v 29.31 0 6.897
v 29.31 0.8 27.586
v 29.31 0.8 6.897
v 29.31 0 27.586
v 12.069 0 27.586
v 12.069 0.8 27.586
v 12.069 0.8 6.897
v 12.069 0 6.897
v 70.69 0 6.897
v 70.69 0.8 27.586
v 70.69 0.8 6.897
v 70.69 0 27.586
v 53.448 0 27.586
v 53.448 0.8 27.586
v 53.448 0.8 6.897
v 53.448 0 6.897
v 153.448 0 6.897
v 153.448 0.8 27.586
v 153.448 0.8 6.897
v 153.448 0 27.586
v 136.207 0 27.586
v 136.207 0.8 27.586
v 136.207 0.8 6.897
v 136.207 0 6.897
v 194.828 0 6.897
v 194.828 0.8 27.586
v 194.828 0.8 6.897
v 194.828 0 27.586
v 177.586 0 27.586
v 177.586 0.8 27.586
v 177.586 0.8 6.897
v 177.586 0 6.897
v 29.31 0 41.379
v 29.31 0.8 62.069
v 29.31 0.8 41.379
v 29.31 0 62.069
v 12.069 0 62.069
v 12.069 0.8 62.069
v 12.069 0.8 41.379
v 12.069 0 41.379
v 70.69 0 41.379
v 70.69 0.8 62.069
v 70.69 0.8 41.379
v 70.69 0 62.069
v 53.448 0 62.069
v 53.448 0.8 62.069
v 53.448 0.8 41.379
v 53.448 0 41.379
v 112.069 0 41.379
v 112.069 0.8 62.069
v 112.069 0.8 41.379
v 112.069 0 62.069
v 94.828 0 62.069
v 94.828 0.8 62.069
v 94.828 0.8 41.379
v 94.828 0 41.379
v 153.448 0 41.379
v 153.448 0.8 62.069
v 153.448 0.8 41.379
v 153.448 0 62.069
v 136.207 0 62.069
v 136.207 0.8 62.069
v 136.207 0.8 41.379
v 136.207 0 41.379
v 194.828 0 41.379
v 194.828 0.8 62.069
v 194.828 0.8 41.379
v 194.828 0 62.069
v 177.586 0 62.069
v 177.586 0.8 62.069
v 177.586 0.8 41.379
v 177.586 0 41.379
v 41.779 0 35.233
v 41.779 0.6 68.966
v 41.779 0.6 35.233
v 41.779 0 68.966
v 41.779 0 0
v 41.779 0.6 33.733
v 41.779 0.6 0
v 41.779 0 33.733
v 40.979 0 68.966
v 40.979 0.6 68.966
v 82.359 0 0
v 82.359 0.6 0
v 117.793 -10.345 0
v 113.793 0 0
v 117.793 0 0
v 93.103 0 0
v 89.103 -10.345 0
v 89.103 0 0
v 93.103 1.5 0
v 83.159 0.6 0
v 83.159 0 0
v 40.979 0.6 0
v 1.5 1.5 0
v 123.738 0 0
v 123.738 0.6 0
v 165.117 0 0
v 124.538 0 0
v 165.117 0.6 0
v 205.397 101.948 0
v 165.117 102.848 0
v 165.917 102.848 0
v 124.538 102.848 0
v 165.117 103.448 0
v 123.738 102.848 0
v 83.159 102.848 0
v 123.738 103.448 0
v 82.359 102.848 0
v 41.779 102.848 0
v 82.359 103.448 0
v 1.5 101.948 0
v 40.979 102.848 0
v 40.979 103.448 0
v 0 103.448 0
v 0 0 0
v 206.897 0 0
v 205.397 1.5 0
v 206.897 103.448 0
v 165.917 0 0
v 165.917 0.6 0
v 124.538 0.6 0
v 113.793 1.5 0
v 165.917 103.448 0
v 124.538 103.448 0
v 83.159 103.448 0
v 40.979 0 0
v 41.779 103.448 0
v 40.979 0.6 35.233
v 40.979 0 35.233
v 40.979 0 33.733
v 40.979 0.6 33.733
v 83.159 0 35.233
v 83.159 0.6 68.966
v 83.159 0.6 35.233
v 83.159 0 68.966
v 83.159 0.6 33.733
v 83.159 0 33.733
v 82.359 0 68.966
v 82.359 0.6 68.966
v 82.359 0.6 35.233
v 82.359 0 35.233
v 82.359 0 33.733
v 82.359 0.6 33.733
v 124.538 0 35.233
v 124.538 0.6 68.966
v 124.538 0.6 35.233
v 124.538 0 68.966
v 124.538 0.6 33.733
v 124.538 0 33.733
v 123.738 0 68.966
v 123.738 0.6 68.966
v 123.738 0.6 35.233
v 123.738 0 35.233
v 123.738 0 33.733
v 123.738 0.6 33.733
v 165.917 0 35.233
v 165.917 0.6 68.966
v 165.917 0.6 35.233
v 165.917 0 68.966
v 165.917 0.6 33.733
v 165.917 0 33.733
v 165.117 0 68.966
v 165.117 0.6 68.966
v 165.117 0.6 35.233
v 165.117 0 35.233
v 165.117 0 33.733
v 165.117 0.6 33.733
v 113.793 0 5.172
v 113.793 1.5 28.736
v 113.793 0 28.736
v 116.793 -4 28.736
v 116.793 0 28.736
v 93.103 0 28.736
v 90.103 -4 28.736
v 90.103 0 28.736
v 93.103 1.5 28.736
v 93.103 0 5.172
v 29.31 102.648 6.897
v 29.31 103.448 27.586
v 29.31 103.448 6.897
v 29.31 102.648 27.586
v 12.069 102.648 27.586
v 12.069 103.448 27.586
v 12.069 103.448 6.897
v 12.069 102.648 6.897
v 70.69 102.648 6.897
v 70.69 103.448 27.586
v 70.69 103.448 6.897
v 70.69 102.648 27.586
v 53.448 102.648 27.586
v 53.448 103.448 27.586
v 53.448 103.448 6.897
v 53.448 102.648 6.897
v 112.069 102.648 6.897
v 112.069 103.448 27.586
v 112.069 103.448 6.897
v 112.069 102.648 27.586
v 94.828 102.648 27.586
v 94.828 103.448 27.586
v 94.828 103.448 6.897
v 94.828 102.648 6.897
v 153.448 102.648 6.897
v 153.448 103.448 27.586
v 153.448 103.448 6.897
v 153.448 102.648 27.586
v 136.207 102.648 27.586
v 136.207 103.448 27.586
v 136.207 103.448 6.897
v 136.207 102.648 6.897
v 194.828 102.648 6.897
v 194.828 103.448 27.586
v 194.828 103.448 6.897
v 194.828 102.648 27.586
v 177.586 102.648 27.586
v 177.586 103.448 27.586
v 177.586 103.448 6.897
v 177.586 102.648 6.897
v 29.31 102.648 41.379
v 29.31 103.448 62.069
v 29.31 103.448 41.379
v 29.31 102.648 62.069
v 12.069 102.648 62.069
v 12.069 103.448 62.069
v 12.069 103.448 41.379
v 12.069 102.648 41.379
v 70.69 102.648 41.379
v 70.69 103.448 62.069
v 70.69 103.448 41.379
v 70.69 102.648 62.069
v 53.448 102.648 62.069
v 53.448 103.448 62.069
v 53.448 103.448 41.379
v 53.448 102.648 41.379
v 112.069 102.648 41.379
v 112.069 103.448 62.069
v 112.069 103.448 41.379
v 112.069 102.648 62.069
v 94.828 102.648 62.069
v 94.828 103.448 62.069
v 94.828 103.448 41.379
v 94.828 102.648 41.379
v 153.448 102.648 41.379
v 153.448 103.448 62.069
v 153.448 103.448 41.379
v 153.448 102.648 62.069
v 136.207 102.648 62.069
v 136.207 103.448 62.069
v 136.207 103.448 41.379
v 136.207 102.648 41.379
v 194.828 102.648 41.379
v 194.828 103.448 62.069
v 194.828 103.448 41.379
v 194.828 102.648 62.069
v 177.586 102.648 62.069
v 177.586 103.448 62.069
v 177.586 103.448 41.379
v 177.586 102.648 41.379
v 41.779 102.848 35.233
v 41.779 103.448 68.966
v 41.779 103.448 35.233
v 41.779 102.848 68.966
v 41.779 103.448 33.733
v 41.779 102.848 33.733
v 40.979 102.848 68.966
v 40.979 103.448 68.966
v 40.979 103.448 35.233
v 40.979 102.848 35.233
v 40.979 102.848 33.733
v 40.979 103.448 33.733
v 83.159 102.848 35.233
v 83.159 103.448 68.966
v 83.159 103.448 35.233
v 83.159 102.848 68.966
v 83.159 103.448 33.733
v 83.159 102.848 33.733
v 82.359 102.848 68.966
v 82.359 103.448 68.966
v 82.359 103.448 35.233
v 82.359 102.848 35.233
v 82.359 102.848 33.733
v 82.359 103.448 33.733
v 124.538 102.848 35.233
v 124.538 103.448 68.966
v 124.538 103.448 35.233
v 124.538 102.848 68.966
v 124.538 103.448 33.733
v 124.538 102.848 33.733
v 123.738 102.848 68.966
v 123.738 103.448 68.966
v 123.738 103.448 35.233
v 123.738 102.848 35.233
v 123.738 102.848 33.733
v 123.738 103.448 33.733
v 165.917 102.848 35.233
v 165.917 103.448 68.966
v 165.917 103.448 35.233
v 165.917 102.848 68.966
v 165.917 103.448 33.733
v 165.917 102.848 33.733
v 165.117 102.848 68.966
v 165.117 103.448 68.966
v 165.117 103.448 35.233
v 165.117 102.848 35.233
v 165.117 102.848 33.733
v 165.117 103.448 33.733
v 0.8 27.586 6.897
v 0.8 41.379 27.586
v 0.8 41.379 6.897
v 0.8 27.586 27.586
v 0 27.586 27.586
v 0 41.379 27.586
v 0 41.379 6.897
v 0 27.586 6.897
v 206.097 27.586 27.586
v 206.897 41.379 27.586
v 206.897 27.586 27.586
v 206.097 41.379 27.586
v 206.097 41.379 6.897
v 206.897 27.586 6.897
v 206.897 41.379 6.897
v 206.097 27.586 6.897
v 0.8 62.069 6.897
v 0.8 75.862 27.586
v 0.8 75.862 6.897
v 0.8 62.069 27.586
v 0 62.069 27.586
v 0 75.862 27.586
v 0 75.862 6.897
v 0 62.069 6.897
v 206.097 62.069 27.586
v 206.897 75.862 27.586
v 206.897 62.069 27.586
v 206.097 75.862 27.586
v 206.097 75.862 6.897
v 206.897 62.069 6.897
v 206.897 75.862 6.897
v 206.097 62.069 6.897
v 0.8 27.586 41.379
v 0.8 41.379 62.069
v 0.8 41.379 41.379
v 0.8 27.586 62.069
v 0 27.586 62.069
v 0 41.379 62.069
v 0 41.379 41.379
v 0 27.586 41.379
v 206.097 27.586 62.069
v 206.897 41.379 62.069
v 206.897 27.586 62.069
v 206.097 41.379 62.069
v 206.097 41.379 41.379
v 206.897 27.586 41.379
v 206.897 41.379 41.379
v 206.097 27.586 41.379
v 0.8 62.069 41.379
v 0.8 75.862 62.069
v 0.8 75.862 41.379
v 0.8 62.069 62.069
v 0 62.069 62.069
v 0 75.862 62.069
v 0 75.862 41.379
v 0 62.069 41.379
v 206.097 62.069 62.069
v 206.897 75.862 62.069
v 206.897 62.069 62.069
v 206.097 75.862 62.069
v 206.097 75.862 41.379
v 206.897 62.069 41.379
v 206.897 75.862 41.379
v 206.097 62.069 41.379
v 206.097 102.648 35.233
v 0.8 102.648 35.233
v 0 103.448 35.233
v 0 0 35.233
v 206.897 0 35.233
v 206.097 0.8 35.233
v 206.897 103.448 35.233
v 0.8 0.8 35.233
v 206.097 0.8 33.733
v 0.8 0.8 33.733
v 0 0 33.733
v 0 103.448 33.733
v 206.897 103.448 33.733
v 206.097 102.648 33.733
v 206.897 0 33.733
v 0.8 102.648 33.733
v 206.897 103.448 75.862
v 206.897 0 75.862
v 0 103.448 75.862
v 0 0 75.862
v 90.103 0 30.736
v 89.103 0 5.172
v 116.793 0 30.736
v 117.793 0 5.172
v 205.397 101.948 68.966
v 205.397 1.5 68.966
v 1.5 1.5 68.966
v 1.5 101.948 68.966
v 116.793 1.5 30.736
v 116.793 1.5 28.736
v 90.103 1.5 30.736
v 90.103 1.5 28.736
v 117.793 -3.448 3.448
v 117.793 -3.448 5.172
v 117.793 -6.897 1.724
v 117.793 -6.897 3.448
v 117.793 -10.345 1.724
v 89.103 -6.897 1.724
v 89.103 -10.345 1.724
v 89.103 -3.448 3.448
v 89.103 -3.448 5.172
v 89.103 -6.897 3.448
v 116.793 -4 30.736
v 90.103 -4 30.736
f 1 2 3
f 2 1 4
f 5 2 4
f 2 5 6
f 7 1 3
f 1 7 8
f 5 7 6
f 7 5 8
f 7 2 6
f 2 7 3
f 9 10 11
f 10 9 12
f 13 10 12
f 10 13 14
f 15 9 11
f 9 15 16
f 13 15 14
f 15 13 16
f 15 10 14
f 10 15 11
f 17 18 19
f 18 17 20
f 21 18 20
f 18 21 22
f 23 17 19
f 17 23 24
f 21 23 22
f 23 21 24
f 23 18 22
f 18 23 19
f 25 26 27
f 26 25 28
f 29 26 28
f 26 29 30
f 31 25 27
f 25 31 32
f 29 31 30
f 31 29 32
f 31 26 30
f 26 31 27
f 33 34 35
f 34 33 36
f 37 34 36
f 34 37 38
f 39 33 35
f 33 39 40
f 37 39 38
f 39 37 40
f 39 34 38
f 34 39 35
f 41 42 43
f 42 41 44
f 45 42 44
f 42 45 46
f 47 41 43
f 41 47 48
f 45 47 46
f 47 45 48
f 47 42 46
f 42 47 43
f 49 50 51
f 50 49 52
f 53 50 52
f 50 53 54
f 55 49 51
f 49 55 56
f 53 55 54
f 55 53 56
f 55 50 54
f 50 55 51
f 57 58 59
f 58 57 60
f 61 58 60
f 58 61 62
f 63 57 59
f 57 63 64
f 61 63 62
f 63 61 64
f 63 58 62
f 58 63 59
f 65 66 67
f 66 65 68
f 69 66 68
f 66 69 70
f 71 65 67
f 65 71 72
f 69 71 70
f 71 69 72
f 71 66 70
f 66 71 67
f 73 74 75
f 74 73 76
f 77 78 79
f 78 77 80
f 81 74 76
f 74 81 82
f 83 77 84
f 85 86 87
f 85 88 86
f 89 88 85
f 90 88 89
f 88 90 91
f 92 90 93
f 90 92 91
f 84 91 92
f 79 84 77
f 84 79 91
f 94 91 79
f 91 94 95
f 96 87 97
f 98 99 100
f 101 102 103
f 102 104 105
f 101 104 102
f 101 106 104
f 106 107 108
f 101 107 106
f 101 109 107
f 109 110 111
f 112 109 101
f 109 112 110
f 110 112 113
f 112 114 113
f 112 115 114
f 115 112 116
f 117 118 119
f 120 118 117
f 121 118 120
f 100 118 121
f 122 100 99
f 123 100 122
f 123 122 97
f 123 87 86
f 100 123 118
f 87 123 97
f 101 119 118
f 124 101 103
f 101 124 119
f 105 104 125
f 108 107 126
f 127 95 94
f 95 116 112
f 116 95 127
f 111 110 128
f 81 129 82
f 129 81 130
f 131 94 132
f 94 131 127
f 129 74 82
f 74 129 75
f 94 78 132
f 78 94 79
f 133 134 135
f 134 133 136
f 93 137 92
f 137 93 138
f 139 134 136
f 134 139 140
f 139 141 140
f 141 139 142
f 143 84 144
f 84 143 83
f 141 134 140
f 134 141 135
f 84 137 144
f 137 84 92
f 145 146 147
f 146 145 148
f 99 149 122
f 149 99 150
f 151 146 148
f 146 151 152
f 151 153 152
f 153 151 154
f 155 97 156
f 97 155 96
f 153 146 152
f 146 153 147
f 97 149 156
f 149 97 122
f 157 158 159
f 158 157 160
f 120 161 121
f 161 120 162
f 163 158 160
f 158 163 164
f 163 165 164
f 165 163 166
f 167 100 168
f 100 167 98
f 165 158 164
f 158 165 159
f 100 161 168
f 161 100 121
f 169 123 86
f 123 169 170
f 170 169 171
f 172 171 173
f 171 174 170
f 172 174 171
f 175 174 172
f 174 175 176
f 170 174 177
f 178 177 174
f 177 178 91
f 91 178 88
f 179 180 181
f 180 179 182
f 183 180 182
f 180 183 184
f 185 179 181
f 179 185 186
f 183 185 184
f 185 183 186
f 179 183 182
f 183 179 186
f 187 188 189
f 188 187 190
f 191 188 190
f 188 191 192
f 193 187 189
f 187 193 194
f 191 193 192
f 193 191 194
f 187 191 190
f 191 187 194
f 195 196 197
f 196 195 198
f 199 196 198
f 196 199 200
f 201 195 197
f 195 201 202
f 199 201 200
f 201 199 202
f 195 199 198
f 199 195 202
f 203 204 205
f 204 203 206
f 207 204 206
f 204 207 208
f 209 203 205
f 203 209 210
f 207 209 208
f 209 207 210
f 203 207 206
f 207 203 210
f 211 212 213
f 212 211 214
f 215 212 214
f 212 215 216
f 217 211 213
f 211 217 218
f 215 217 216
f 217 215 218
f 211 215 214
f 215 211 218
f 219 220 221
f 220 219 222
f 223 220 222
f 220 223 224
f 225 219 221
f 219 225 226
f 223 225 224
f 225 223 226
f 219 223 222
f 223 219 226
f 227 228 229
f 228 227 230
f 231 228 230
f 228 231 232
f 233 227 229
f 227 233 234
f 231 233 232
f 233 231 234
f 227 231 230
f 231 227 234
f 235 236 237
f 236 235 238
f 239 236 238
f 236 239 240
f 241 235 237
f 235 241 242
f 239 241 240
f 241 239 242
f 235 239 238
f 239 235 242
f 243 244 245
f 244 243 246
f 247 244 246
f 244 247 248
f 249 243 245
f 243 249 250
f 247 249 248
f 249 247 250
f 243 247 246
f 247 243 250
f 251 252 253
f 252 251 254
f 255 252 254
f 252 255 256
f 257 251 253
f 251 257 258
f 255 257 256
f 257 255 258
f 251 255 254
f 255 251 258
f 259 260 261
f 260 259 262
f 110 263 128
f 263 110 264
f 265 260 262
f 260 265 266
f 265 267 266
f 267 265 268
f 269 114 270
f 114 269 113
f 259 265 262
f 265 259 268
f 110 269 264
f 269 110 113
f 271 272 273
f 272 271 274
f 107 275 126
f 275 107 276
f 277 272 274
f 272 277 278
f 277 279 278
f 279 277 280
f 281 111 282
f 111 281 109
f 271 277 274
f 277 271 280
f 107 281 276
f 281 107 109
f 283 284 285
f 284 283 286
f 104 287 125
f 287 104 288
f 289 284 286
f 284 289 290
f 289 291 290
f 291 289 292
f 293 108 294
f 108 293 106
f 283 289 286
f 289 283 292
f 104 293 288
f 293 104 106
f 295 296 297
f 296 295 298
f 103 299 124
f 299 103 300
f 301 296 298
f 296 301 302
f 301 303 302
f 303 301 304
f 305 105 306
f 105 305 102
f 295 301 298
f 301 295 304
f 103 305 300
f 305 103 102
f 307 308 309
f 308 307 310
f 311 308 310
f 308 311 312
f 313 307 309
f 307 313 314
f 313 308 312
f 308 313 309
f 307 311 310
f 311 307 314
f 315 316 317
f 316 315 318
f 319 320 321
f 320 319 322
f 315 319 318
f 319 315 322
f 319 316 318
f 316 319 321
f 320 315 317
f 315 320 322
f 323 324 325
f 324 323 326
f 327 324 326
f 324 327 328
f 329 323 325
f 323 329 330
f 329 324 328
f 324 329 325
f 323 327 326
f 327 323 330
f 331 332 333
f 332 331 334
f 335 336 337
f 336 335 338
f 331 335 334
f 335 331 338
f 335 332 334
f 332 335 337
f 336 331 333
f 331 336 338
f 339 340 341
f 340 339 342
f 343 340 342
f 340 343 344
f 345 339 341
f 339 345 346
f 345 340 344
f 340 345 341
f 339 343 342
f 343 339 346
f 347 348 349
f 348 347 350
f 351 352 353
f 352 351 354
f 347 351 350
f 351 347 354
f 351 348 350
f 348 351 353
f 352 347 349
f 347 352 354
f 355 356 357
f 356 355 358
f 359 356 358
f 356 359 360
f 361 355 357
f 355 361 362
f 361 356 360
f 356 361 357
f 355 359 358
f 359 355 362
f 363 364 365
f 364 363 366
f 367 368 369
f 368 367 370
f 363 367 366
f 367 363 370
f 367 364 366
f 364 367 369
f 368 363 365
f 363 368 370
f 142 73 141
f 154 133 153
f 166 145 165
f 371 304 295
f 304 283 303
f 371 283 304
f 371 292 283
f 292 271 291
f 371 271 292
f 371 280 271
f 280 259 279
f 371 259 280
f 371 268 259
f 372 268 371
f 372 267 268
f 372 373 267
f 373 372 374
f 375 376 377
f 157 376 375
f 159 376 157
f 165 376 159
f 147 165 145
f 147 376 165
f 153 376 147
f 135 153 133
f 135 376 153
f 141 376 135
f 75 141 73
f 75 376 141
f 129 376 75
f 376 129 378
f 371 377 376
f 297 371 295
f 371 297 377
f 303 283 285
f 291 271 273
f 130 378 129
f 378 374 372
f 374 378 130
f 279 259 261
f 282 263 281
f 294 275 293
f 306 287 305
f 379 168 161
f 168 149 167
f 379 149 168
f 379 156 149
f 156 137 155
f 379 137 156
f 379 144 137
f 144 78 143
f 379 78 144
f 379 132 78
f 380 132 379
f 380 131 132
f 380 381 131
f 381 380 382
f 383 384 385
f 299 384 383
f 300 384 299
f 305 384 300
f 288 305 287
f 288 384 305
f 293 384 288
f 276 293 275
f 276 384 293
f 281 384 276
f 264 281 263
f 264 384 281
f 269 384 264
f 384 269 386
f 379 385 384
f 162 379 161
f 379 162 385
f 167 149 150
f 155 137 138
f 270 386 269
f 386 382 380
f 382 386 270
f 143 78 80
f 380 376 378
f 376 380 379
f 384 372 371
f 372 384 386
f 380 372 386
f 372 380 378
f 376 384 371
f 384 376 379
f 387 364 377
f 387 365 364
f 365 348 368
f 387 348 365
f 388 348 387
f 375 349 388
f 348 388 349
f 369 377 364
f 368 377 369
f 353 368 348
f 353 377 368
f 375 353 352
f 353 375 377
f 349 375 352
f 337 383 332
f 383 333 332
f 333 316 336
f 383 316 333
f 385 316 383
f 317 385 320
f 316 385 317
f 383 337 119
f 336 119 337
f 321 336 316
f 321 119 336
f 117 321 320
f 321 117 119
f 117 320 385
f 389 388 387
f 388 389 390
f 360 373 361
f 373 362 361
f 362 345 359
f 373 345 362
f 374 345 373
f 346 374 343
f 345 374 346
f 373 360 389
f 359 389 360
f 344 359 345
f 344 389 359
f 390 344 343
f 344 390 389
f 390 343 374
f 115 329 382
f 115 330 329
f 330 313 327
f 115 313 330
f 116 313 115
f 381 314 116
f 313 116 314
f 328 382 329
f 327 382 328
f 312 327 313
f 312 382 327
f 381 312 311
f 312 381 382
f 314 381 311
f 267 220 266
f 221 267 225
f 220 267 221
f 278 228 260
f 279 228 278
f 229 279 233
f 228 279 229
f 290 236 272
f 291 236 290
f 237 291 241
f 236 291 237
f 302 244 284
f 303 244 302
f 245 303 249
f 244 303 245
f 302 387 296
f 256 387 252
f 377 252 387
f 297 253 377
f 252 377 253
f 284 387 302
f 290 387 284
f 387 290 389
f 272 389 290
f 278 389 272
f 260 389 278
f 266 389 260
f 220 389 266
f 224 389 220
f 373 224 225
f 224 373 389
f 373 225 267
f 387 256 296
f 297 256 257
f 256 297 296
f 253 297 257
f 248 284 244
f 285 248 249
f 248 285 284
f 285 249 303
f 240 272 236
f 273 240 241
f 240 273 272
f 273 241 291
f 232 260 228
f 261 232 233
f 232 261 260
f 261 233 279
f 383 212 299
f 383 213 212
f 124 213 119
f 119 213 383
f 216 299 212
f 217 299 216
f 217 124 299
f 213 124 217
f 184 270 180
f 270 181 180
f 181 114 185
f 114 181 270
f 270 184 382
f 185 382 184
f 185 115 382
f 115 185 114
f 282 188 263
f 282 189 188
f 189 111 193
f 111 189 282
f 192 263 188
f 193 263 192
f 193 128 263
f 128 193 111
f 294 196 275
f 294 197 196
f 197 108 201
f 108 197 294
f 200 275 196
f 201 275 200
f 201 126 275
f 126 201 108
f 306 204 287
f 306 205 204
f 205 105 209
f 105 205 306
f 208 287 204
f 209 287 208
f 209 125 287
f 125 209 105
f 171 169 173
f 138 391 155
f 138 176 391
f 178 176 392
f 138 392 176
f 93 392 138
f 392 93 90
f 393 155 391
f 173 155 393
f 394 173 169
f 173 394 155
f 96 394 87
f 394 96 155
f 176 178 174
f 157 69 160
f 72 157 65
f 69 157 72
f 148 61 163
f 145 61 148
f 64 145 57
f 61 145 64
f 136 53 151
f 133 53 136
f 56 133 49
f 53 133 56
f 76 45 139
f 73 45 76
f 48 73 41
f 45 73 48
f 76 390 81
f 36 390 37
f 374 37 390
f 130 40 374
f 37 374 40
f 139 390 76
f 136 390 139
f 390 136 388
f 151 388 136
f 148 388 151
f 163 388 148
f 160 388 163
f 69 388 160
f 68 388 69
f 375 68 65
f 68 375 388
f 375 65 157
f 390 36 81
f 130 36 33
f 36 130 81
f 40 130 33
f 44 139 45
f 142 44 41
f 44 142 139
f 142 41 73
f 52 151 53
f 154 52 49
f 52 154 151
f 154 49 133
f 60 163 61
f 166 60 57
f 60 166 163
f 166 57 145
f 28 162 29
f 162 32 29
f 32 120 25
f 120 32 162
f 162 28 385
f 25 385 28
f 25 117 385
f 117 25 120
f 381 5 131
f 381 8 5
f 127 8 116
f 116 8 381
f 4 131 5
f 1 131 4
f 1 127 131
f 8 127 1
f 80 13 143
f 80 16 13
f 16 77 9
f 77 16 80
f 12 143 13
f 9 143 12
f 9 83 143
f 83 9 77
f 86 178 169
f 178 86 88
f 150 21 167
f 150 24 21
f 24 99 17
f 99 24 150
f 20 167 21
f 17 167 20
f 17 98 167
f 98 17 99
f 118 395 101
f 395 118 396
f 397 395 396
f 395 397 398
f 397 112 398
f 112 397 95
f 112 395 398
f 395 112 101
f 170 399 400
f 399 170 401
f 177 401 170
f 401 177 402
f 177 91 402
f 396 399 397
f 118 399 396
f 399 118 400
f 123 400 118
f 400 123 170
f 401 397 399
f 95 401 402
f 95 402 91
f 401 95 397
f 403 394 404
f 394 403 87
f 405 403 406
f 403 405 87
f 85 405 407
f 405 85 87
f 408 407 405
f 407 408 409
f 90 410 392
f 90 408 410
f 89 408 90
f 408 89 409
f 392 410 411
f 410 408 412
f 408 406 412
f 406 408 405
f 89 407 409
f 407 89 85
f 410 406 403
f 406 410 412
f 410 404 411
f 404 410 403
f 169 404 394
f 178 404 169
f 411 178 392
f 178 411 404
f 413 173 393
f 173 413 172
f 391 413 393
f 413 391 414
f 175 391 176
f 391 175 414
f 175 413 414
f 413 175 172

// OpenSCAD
/*
 * PROMPT: Polish PRL-era police station (posterunek milicji) in H0 scale (1:87).
 * Two-storey standalone building, flat roof with parapet, regular window grid on
 * front and back facades, two windows per floor on side walls, recessed entrance
 * door at ground floor centre with concrete steps and canopy above, horizontal
 * floor cornice groove and vertical concrete panel joint grooves.
 * FDM printable hollow shell open bottom, exterior detail only.
 */

$fn = 32;
S = 1 / 87;

// ── DIMENSIONS (real-world mm → H0 mm) ────────────────────────────────────────
wall_t      = 1.5;

bld_w_real  = 18000;         // building width (real-world mm)
bld_d_real  = 9000;          // building depth (real-world mm)

floor_h     = 3000 * S;      // floor-to-floor height   34.5 mm
bld_h       = 2 * floor_h;   // two storeys             69.0 mm
parapet_h   = 600  * S;      // parapet                  6.9 mm

bay_w_real  = 3600;          // bay width, real mm — gives 5 bays

win_w       = 1500 * S;      // front/back window width  17.2 mm
win_h       = 1800 * S;      // front/back window height 20.7 mm
win_recess  = 0.8;

side_win_w  = 1200 * S;      // side window width        13.8 mm
side_win_h  = 1800 * S;      // side window height       20.7 mm

door_w      = 1800 * S;      // entrance door width      20.7 mm
door_h      = 2500 * S;      // entrance door height     28.7 mm

n_steps     = 3;             // entrance steps
step_h      = 150 * S;       // step riser               1.7 mm
step_d      = 300 * S;       // step going               3.4 mm

cornice_w   = 1.5;           // floor cornice groove width
cornice_d   = 0.8;           // floor cornice groove depth

groove_w    = 0.8;           // panel joint groove width
groove_d    = 0.6;           // panel joint groove depth

canopy_proj = 4.0;           // canopy projection (H0 mm)
canopy_t    = 2.0;           // canopy slab thickness (H0 mm)

// ── DERIVED ───────────────────────────────────────────────────────────────────
bld_w      = bld_w_real * S;
bld_d      = bld_d_real * S;
n_bays     = floor(bld_w_real / bay_w_real);   // 5
bay_w      = bld_w / n_bays;
center_bay = floor(n_bays / 2);                // 2

// ── MODULES ───────────────────────────────────────────────────────────────────

module front_cuts() {
    // windows — every bay both floors, except entrance bay on ground floor
    for (f = [0 : 1]) {
        for (b = [0 : n_bays - 1]) {
            if (!(f == 0 && b == center_bay)) {
                translate([b*bay_w + (bay_w - win_w)/2,
                           -1,
                           f*floor_h + (floor_h - win_h)/2])
                    cube([win_w, win_recess + 1, win_h]);
            }
        }
    }
    // entrance — through-wall
    translate([center_bay*bay_w + (bay_w - door_w)/2, -1, 0])
        cube([door_w, wall_t + 2, door_h]);
    // vertical panel joints at bay boundaries
    for (b = [1 : n_bays - 1]) {
        translate([b*bay_w - groove_w/2, -1, 0])
            cube([groove_w, groove_d + 1, bld_h]);
    }
}

module back_cuts() {
    for (f = [0 : 1]) {
        for (b = [0 : n_bays - 1]) {
            translate([b*bay_w + (bay_w - win_w)/2,
                       bld_d - win_recess,
                       f*floor_h + (floor_h - win_h)/2])
                cube([win_w, win_recess + 1, win_h]);
        }
    }
    for (b = [1 : n_bays - 1]) {
        translate([b*bay_w - groove_w/2, bld_d - groove_d, 0])
            cube([groove_w, groove_d + 1, bld_h]);
    }
}

module side_cuts() {
    // two windows per floor per side at 1/3 and 2/3 depth
    for (f = [0 : 1]) {
        wz = f * floor_h + (floor_h - side_win_h) / 2;
        for (pos = [1/3, 2/3]) {
            wy = pos * bld_d - side_win_w / 2;
            translate([-1, wy, wz])
                cube([win_recess + 1, side_win_w, side_win_h]);
            translate([bld_w - win_recess, wy, wz])
                cube([win_recess + 1, side_win_w, side_win_h]);
        }
    }
}

module cornice_groove() {
    // pronounced horizontal groove at floor line, full perimeter
    gz = floor_h - cornice_w / 2;
    translate([0,                 -1,              gz]) cube([bld_w,        cornice_d + 1, cornice_w]);
    translate([0,                 bld_d-cornice_d, gz]) cube([bld_w,        cornice_d + 1, cornice_w]);
    translate([-1,                0,              gz]) cube([cornice_d + 1, bld_d,         cornice_w]);
    translate([bld_w - cornice_d, 0,              gz]) cube([cornice_d + 1, bld_d,         cornice_w]);
}

module shell() {
    difference() {
        cube([bld_w, bld_d, bld_h + parapet_h]);
        // hollow interior — stops at bld_h, leaving solid roof + parapet
        translate([wall_t, wall_t, 0])
            cube([bld_w - 2*wall_t, bld_d - 2*wall_t, bld_h]);
        front_cuts();
        back_cuts();
        side_cuts();
        cornice_groove();
    }
}

module entrance_steps() {
    sw = door_w + 8;
    sx = center_bay * bay_w + (bay_w - sw) / 2;
    for (i = [0 : n_steps - 1]) {
        // slab i: progressively closer to building, progressively taller
        translate([sx, -(n_steps - i) * step_d, 0])
            cube([sw, step_d, (i + 1) * step_h]);
    }
}

module entrance_canopy() {
    cw = door_w + 6;
    cx = center_bay * bay_w + (bay_w - door_w) / 2 - 3;
    translate([cx, -canopy_proj, door_h])
        cube([cw, canopy_proj + wall_t, canopy_t]);
}

// ── ASSEMBLY ──────────────────────────────────────────────────────────────────
union() {
    shell();
    entrance_steps();
    entrance_canopy();
}
